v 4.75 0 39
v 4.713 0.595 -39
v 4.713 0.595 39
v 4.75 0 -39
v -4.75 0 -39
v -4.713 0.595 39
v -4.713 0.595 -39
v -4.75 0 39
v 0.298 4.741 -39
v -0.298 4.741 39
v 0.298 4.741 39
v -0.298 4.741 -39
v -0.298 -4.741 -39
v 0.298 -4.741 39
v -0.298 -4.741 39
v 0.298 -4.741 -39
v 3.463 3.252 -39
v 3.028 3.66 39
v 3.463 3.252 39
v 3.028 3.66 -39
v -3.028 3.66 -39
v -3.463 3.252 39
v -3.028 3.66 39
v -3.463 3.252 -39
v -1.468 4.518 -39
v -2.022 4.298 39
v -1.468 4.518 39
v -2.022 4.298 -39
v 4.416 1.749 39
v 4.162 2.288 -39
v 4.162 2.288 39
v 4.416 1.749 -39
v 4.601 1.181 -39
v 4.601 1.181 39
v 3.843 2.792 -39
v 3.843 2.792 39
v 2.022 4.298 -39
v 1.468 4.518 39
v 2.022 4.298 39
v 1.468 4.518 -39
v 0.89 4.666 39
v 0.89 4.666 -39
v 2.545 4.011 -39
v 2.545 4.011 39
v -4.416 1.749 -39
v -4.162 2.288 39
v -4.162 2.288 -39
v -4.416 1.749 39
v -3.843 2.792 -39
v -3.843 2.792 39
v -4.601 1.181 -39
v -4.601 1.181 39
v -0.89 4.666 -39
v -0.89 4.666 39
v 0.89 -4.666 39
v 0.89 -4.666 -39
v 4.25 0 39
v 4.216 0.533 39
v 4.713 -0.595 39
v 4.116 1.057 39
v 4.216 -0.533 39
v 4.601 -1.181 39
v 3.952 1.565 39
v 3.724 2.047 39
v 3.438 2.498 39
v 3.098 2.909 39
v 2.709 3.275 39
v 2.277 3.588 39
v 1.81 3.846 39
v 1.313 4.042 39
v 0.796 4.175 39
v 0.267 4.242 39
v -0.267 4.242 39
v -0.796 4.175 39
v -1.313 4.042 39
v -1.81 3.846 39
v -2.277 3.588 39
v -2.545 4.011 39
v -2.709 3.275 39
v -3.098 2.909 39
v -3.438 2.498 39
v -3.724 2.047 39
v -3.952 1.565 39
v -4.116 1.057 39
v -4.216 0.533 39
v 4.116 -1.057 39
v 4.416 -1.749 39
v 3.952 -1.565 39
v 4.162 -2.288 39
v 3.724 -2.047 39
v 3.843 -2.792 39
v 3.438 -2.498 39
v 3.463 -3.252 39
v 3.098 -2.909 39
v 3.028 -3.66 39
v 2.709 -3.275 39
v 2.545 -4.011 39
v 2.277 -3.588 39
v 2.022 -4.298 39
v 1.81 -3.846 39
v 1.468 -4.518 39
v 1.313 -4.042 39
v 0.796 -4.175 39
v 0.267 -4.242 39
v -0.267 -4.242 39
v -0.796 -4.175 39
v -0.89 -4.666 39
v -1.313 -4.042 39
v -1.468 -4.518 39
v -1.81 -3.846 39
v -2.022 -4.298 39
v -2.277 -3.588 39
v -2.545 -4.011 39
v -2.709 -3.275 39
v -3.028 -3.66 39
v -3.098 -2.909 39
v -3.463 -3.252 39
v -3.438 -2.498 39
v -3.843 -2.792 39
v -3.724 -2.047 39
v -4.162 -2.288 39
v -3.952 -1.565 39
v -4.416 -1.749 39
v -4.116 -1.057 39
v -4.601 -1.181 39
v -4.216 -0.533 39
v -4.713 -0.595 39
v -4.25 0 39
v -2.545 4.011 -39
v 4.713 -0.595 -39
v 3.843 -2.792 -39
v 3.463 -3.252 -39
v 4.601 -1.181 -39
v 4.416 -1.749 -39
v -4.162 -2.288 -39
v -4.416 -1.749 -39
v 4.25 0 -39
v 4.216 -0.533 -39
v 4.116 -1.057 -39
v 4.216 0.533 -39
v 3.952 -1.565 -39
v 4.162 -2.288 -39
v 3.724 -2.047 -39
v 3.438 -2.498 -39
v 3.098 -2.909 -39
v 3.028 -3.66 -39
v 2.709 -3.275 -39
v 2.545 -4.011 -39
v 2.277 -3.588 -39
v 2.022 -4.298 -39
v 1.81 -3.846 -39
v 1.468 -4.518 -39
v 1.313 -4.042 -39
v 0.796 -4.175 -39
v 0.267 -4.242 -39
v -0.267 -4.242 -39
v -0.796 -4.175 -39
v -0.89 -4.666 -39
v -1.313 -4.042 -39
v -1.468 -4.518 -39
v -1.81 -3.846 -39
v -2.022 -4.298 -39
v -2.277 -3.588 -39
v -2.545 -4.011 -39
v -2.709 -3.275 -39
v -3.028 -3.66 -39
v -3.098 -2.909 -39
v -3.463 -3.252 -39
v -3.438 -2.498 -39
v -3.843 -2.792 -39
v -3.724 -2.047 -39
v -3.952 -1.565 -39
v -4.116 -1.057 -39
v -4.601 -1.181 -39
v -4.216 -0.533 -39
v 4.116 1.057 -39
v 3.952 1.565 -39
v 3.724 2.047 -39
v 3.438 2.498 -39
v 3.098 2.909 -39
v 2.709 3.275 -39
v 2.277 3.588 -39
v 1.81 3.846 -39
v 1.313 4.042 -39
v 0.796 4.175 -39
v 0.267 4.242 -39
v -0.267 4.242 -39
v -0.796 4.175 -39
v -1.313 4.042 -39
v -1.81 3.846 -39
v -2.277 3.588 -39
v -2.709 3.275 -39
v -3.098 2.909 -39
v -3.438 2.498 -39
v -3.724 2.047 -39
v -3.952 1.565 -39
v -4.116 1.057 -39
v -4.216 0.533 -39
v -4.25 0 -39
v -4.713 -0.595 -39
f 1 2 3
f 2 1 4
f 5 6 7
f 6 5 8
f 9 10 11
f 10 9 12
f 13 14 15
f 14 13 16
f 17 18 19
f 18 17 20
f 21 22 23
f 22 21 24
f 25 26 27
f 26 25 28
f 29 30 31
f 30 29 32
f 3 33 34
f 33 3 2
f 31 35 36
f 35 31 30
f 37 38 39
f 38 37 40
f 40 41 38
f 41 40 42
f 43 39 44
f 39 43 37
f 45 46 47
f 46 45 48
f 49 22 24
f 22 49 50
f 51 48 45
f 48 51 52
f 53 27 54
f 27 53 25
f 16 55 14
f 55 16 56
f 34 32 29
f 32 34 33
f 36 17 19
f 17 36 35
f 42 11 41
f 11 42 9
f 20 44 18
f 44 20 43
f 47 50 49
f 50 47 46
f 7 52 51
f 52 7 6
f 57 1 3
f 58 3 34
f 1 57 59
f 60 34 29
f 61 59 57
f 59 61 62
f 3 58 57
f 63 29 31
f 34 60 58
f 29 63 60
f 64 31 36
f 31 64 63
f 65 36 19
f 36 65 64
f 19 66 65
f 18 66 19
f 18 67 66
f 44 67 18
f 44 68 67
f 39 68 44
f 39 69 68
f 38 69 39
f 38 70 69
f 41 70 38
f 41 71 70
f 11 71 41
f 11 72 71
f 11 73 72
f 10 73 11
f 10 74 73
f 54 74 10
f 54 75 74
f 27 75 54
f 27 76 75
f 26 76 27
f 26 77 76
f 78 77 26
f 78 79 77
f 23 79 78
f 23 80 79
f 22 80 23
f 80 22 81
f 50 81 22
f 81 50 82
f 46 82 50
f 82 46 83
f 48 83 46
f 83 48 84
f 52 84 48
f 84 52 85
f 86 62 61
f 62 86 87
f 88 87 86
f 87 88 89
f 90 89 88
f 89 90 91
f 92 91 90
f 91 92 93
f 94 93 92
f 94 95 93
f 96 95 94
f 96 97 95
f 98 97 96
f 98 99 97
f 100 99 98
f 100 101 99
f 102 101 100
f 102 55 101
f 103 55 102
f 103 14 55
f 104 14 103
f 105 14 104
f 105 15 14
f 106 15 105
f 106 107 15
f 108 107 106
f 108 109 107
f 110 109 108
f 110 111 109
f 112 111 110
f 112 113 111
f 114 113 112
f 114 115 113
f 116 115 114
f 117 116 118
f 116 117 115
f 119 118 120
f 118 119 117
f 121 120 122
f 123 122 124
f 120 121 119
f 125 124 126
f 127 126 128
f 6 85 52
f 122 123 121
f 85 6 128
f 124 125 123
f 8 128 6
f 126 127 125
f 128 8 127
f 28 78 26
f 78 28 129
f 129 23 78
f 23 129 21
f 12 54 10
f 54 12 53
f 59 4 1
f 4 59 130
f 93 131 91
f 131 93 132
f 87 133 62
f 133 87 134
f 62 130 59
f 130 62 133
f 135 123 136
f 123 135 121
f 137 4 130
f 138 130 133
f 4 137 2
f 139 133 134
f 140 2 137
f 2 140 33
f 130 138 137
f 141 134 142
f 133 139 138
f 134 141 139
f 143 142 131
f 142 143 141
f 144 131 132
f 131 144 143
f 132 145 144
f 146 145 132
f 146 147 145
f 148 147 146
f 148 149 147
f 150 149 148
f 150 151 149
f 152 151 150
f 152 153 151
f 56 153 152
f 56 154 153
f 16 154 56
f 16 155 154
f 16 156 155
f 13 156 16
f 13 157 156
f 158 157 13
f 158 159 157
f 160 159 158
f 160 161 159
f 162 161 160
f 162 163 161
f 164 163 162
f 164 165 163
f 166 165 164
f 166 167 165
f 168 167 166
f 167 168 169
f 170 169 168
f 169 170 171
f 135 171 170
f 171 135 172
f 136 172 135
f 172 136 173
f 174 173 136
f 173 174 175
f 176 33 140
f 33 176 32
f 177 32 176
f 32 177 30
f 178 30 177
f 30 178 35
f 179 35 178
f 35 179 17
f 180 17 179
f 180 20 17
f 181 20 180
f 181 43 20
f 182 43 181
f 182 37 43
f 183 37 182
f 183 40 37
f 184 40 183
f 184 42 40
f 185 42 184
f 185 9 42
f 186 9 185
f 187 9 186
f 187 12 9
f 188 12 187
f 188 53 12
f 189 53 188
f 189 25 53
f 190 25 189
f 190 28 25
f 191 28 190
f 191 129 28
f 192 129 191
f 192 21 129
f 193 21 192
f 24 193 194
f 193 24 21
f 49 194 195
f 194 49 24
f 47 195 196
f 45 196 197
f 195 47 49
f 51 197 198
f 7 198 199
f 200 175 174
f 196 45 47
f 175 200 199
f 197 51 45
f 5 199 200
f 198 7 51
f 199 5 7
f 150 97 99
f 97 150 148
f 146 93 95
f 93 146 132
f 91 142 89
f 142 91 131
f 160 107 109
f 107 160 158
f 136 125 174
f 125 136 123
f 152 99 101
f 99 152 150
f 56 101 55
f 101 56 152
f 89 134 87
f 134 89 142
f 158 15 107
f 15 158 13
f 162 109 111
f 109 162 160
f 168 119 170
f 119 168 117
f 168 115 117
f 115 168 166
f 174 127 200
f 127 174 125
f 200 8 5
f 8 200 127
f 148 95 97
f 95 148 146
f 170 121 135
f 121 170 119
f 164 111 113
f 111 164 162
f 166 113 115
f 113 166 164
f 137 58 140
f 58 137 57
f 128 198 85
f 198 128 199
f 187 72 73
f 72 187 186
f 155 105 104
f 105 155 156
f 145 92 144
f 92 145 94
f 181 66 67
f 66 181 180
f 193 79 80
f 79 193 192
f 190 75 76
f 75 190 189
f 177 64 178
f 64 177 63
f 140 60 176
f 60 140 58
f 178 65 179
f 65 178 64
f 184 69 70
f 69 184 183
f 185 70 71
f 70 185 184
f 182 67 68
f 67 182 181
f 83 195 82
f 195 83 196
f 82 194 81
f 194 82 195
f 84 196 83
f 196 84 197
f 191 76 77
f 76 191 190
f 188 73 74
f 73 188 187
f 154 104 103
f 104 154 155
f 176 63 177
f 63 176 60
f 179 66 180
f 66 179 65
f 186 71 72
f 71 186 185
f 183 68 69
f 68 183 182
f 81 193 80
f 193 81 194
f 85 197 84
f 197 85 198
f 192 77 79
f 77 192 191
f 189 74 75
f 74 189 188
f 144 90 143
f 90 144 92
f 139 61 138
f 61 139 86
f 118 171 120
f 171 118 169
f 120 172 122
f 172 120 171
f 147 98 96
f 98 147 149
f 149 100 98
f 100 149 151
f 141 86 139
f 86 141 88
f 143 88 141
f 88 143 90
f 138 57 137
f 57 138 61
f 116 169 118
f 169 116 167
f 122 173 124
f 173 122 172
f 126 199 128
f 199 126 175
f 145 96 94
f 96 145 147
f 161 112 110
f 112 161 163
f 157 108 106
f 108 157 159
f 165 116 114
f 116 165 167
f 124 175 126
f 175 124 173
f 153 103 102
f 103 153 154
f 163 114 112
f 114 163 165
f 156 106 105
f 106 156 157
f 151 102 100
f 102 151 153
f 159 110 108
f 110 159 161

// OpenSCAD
$fn = 50;


difference() {
	union() {
		translate(v = [0, 0, -39.0000000000]) {
			cylinder(h = 78, r = 4.7500000000);
		}
	}
	union() {
		translate(v = [0, 0, -100.0000000000]) {
			cylinder(h = 200, r = 4.2500000000);
		}
	}
}
